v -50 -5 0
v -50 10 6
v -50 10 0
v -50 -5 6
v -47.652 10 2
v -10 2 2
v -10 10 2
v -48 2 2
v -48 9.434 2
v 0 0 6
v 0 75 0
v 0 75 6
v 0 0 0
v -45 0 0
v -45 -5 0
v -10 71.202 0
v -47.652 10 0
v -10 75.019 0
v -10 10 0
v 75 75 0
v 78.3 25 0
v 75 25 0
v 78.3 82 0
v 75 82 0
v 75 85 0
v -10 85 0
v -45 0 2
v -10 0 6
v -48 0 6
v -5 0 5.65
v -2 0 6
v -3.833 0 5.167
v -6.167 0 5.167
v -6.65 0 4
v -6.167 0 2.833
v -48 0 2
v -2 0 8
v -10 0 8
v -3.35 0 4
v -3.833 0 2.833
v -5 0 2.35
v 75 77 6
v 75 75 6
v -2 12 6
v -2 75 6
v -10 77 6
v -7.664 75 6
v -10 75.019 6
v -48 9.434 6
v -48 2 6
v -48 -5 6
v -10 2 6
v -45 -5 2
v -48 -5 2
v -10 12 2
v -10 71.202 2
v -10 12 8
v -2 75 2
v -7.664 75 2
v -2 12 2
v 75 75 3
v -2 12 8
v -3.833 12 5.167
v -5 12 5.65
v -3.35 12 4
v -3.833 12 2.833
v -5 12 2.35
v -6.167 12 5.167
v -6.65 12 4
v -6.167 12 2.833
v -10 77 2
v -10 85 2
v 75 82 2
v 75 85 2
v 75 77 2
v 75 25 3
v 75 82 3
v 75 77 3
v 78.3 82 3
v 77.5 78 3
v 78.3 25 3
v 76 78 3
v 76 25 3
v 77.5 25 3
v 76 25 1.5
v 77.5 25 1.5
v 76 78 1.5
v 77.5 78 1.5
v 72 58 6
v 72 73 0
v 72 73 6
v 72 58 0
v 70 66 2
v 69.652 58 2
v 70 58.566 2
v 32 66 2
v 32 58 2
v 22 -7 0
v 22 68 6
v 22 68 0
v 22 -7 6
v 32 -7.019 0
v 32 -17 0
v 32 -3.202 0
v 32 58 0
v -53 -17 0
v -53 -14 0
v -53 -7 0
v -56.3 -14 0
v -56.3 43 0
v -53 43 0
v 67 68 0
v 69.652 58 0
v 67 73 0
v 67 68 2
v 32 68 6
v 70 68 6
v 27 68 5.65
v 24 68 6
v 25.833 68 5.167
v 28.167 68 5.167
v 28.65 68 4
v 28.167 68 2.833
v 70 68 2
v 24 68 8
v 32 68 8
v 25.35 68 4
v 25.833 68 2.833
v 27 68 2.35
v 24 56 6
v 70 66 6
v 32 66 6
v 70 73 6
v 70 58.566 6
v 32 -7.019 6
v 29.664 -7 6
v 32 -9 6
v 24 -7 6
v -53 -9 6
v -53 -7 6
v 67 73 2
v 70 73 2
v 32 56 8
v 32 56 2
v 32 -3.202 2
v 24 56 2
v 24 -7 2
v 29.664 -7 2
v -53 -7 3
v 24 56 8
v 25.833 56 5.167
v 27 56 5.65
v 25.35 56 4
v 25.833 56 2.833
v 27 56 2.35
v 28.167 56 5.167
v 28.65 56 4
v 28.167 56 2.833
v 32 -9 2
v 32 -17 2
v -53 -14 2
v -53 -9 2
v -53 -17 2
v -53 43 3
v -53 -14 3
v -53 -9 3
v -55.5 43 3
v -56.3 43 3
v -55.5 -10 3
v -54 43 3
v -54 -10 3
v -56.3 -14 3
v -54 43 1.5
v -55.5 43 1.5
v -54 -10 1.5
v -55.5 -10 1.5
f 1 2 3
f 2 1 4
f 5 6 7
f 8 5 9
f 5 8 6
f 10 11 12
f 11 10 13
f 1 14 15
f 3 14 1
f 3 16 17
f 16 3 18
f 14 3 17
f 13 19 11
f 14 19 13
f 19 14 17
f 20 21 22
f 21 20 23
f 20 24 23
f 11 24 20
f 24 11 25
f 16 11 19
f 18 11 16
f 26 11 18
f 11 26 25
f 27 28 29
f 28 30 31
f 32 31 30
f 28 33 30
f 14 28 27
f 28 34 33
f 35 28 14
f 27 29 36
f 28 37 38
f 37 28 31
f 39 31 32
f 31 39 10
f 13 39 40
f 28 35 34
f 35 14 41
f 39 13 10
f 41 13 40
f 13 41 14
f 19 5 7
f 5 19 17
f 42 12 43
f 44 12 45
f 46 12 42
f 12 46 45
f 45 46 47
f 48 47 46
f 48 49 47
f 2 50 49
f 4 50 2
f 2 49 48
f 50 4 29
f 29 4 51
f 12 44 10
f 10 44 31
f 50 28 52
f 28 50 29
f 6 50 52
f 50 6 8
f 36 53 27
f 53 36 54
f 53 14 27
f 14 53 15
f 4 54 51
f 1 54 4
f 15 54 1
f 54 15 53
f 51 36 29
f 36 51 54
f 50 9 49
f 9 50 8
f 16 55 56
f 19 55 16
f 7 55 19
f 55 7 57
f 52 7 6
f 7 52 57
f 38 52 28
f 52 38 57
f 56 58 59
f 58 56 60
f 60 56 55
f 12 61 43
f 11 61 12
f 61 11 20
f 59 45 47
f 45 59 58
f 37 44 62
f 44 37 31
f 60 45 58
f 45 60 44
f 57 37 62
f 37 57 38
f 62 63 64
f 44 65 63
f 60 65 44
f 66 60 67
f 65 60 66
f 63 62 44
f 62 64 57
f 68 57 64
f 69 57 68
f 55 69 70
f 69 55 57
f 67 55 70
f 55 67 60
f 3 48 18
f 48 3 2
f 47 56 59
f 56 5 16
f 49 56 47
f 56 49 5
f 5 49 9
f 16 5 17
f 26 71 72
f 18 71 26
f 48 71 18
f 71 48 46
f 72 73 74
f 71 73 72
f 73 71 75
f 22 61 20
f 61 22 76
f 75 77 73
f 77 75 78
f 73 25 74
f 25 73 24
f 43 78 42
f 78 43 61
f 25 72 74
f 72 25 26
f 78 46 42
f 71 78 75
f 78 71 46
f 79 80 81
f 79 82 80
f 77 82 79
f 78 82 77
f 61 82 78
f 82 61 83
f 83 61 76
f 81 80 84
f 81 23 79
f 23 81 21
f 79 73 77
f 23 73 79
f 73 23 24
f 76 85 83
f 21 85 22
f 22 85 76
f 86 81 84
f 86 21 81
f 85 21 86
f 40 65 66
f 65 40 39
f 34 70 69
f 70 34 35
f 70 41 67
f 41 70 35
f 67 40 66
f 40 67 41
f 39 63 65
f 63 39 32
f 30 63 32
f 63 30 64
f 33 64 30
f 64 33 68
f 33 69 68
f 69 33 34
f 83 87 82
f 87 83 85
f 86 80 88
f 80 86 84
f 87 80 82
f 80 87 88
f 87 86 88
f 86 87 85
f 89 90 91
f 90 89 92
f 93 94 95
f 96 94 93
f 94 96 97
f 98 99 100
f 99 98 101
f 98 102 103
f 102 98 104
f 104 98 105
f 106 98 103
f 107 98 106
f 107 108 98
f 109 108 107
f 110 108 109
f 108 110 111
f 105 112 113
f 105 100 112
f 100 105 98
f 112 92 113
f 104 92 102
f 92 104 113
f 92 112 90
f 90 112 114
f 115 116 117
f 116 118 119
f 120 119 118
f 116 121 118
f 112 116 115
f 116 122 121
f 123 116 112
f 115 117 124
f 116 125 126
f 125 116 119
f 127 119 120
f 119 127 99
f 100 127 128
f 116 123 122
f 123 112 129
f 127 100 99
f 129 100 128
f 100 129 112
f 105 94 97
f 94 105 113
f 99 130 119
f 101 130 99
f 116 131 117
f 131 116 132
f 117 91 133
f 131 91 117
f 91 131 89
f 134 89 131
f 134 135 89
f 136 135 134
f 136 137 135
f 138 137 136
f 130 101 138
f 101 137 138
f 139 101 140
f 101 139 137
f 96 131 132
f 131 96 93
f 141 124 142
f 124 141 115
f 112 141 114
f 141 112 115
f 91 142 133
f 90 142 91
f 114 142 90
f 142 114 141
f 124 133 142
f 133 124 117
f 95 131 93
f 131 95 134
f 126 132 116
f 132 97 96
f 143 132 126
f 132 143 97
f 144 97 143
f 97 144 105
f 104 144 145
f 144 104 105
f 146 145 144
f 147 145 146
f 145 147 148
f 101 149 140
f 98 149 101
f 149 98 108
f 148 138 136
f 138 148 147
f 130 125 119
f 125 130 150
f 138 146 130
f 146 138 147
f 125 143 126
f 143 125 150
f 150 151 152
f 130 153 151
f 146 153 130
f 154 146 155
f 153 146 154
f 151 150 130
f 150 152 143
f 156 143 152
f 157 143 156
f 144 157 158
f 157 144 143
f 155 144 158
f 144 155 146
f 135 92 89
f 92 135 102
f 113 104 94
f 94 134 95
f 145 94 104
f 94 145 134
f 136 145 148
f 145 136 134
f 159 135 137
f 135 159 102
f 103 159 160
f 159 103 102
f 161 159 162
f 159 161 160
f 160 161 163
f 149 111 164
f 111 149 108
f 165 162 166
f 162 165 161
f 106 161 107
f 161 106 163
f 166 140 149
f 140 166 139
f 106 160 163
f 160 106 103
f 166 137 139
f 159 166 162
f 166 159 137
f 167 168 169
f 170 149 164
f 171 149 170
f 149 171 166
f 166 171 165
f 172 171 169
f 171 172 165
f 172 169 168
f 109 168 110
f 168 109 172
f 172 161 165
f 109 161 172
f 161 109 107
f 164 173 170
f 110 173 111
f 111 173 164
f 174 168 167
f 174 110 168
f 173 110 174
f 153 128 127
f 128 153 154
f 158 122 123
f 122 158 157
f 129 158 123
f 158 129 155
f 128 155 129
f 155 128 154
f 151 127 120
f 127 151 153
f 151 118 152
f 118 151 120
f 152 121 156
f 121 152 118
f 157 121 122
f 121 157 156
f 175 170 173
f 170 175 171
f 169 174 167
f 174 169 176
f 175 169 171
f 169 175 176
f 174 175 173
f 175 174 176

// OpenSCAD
//OpenSCAD-Skript

//Moduldefinition mit Parametern
module edge (
//Parameter
hght=5,thck=2.0,rh=6,
lngth1=50, lngth2=75,d1=1.3)
//Beginn Modul
{
difference(){   //difference 1
union(){        //union 1
difference(){   //difference 2
union(){        //union 2
    //alles, was vor der nächsten geschweiften Klammer steht, wird zusammengefügt (union 2)
//Traverse unten
translate([-lngth1,0,0])
cube([lngth1,10,thck]);
//Rippe Traverse
translate([-lngth1,0,0])
cube([lngth1,thck,rh]);
//Stütze hinten
translate([-lngth1,-hght,0])
cube([hght,hght,thck]);
//Rippe Stütze hinten
translate([-lngth1,-hght,0])
cube([thck,hght+10,rh]);
//Vertikale Stütze
translate([-10,0,0])
cube([10,lngth2,thck]); 
//Rippe Vertikale Stütze
translate([-thck,0,0])
cube([thck,lngth2,rh]);     
//translate([0, 0, 0])
//cylinder(d=diaA, h=hght, $fn=32);
//Klotz für Schraube
translate([-10,0,0])
cube([8,12,8]);
//Schräge Rippe
translate([-lngth1,10,0])
rotate([0,0,-31.6])
cube([thck,78.5,rh]);
//Ausleger
translate([-10,lngth2,0])
cube([lngth2+10,10,thck]);
//Rippe Ausleger
translate([-10,lngth2,0])
cube([lngth2+10,thck,rh]);
//Stickträgerprofil
translate([lngth2,18+7,0])
cube([3.3,lngth2-18,3]);
}               //union 2 end
    //alles, was vor der nächsten geschweiften Klammer steht, wird davon abgezogen (difference 2)
translate([-5, -0.1, 4])
rotate([-90,0,0])
cylinder(d=3.3, h=24, $fn=8);
////Stickträgerrinne
translate([lngth2+1,18+3,1.5])
cube([1.5,lngth2-18,3]);

}  //difference 2 end
    //alles, was vor der nächsten geschweiften Klammer steht, wird dazu hinzugefügt (union 1)
//Text


}               //union 1 end
    //alles, was vor der nächsten geschweiften Klammer steht, wird davon wieder abgezogen (difference 1)

}               //difference 1 end

}  //module end


//Hier werden Instanzen des Moduls aufgerufen
 

translate([0,0,0]) edge();
rotate([0,0,180])
translate([-22,-68,0]) edge();
